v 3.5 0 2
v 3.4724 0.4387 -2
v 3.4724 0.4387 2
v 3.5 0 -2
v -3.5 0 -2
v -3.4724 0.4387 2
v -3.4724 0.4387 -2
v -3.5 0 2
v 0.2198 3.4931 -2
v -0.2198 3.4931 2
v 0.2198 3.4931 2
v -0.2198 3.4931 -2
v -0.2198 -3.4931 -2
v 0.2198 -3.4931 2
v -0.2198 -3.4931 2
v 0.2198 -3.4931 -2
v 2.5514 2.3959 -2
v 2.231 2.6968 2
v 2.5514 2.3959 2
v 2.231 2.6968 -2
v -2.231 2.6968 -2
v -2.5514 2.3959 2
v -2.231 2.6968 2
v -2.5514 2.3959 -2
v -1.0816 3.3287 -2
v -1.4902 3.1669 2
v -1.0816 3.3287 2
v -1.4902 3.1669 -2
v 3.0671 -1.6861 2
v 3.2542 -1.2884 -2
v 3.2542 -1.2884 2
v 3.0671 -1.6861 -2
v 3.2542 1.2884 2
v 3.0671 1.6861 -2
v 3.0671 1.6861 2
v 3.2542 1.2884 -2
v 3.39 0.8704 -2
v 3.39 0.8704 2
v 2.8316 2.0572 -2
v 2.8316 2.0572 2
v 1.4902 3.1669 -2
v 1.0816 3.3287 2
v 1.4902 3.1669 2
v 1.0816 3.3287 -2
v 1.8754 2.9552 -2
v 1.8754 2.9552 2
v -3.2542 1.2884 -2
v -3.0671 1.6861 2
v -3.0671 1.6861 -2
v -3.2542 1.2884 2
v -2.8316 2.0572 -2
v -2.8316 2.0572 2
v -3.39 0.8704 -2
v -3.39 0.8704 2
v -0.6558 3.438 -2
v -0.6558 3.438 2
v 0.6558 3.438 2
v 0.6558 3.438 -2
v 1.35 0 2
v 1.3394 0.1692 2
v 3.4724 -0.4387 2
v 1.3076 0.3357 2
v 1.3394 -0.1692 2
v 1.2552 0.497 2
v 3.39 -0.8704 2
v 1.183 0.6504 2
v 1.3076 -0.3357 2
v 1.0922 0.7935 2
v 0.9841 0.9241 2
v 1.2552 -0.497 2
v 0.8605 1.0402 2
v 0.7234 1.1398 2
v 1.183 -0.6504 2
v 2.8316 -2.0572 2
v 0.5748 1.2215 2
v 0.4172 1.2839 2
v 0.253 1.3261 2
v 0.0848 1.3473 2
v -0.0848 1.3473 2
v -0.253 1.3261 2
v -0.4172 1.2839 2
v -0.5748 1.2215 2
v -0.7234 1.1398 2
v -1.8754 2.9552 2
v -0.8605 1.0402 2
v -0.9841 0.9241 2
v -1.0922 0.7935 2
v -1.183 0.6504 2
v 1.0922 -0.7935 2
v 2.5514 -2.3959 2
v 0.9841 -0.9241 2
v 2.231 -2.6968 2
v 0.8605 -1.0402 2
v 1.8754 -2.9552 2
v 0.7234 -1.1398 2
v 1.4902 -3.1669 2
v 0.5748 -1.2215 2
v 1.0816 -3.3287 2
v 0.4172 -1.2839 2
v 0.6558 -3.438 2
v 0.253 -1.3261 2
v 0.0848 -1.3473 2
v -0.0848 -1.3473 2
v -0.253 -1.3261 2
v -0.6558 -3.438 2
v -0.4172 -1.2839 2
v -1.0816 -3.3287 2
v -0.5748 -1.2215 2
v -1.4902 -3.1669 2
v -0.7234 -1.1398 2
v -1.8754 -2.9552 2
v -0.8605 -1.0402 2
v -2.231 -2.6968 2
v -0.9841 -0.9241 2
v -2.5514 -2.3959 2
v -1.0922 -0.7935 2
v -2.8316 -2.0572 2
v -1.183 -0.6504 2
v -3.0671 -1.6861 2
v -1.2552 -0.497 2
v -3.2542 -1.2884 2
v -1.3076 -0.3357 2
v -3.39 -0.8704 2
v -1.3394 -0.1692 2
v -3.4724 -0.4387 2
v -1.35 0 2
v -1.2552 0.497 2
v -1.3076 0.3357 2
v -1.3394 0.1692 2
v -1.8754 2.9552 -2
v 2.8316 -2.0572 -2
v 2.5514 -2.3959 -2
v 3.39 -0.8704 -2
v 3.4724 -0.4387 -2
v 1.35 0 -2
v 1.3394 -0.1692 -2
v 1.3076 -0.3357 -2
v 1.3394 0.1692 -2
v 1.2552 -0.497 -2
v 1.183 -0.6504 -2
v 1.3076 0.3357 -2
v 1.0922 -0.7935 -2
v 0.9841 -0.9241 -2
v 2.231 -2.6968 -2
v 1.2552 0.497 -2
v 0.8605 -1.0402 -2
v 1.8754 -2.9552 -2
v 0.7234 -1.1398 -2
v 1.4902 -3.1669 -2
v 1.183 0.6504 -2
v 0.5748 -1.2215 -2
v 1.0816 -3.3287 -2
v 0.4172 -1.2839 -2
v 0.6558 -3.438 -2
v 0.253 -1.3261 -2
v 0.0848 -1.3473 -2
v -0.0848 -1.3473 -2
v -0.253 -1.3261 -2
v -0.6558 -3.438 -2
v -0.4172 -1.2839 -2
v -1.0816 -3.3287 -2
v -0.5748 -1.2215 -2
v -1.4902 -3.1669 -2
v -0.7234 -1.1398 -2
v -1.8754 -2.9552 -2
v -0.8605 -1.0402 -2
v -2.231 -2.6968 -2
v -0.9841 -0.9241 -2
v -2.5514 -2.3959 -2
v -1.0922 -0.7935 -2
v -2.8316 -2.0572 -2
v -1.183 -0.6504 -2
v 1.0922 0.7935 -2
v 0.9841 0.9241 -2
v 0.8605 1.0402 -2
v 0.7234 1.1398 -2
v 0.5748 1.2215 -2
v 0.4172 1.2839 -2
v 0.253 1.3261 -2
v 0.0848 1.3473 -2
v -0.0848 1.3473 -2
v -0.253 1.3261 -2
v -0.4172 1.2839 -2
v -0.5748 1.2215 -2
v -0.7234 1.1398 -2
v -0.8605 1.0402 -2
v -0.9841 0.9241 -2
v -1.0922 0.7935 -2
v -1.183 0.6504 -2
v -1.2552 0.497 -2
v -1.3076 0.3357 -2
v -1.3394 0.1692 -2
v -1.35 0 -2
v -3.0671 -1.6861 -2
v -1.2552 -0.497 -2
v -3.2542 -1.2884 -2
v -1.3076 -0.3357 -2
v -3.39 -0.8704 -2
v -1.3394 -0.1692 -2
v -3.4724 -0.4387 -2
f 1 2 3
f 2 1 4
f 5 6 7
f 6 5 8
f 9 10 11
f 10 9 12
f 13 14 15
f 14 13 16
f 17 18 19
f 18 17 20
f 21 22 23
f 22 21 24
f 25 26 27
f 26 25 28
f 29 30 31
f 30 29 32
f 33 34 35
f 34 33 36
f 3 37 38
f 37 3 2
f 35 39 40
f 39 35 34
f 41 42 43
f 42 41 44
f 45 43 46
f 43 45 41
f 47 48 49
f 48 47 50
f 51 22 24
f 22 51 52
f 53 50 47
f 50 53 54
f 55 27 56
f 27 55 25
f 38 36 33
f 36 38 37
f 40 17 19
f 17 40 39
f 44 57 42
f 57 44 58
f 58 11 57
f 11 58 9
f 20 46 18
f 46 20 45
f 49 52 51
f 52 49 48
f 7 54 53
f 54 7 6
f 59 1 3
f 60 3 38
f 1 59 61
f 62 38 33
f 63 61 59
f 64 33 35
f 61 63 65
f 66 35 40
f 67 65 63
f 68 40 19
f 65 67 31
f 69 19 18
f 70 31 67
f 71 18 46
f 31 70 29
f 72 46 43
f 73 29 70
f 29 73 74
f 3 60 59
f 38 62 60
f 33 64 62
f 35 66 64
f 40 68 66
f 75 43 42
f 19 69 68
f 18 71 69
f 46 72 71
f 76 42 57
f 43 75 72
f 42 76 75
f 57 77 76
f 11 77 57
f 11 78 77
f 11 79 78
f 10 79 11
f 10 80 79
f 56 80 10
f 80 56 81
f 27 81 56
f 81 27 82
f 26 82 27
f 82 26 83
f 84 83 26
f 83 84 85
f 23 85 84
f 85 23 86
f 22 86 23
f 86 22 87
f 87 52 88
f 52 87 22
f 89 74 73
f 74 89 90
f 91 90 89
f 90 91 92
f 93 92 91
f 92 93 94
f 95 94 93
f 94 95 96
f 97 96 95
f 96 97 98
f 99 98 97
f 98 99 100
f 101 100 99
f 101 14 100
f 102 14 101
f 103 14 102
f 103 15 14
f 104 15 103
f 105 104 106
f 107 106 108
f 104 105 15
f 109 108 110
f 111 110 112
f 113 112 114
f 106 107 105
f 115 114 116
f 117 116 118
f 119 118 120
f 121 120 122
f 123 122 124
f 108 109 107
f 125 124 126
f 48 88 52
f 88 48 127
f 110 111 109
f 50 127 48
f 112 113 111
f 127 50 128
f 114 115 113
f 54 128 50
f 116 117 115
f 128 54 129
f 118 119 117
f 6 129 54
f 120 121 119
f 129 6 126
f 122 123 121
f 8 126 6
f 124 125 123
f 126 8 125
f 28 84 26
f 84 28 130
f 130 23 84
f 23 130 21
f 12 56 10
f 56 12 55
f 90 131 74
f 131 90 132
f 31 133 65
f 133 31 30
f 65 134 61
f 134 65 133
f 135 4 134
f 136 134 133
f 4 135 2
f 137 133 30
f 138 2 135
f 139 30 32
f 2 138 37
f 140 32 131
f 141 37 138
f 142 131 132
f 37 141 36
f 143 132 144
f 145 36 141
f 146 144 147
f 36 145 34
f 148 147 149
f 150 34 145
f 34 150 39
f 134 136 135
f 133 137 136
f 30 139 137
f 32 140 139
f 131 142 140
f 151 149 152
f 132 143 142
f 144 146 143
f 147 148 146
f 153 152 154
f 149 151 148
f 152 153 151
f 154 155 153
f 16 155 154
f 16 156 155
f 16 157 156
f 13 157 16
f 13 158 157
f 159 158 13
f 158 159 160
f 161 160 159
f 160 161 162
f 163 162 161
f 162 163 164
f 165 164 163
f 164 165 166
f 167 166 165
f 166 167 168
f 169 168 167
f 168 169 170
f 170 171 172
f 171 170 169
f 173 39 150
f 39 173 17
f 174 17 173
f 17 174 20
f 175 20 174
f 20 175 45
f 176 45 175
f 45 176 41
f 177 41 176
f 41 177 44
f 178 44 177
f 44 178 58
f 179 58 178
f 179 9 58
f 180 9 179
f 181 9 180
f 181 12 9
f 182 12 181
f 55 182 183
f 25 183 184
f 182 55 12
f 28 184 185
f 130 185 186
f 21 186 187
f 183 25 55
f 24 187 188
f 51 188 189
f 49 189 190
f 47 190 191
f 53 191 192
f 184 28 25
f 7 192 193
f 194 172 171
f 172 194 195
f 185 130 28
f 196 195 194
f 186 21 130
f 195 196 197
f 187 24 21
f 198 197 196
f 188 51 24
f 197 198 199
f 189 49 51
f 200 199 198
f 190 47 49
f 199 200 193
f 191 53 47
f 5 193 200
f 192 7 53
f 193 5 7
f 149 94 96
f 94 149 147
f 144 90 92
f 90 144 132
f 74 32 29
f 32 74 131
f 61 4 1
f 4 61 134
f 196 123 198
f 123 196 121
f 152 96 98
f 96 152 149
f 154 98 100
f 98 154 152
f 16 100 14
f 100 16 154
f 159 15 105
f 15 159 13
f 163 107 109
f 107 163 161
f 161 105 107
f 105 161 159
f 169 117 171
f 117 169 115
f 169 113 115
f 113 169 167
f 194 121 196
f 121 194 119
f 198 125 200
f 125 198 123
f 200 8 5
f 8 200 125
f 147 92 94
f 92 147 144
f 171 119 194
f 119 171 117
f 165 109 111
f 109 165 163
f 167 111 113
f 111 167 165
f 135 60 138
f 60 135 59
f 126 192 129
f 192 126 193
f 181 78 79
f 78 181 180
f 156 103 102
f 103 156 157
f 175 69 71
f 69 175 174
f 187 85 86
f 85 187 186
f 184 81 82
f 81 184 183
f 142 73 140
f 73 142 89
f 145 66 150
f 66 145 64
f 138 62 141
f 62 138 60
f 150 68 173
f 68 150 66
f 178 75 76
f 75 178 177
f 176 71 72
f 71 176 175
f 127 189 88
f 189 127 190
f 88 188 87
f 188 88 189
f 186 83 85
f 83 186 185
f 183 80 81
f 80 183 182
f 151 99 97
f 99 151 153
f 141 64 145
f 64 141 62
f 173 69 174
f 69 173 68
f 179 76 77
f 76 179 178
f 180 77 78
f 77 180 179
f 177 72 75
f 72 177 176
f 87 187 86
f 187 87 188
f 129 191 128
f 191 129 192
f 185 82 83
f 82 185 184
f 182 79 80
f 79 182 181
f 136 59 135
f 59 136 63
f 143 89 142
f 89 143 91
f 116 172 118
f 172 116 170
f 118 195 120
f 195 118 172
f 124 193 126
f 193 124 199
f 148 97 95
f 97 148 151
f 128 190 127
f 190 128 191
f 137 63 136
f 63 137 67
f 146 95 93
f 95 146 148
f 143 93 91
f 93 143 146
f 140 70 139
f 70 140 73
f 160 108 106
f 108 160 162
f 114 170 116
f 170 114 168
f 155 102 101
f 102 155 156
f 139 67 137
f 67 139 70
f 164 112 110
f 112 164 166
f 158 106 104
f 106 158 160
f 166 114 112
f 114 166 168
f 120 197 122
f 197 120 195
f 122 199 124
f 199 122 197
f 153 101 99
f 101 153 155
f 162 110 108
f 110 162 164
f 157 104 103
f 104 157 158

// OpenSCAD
$fn = 50;


difference() {
	union() {
		translate(v = [0, 0, -2.0000000000]) {
			cylinder(h = 4, r = 3.5000000000);
		}
	}
	union() {
		translate(v = [0, 0, -100.0000000000]) {
			cylinder(h = 200, r = 1.3500000000);
		}
	}
}
